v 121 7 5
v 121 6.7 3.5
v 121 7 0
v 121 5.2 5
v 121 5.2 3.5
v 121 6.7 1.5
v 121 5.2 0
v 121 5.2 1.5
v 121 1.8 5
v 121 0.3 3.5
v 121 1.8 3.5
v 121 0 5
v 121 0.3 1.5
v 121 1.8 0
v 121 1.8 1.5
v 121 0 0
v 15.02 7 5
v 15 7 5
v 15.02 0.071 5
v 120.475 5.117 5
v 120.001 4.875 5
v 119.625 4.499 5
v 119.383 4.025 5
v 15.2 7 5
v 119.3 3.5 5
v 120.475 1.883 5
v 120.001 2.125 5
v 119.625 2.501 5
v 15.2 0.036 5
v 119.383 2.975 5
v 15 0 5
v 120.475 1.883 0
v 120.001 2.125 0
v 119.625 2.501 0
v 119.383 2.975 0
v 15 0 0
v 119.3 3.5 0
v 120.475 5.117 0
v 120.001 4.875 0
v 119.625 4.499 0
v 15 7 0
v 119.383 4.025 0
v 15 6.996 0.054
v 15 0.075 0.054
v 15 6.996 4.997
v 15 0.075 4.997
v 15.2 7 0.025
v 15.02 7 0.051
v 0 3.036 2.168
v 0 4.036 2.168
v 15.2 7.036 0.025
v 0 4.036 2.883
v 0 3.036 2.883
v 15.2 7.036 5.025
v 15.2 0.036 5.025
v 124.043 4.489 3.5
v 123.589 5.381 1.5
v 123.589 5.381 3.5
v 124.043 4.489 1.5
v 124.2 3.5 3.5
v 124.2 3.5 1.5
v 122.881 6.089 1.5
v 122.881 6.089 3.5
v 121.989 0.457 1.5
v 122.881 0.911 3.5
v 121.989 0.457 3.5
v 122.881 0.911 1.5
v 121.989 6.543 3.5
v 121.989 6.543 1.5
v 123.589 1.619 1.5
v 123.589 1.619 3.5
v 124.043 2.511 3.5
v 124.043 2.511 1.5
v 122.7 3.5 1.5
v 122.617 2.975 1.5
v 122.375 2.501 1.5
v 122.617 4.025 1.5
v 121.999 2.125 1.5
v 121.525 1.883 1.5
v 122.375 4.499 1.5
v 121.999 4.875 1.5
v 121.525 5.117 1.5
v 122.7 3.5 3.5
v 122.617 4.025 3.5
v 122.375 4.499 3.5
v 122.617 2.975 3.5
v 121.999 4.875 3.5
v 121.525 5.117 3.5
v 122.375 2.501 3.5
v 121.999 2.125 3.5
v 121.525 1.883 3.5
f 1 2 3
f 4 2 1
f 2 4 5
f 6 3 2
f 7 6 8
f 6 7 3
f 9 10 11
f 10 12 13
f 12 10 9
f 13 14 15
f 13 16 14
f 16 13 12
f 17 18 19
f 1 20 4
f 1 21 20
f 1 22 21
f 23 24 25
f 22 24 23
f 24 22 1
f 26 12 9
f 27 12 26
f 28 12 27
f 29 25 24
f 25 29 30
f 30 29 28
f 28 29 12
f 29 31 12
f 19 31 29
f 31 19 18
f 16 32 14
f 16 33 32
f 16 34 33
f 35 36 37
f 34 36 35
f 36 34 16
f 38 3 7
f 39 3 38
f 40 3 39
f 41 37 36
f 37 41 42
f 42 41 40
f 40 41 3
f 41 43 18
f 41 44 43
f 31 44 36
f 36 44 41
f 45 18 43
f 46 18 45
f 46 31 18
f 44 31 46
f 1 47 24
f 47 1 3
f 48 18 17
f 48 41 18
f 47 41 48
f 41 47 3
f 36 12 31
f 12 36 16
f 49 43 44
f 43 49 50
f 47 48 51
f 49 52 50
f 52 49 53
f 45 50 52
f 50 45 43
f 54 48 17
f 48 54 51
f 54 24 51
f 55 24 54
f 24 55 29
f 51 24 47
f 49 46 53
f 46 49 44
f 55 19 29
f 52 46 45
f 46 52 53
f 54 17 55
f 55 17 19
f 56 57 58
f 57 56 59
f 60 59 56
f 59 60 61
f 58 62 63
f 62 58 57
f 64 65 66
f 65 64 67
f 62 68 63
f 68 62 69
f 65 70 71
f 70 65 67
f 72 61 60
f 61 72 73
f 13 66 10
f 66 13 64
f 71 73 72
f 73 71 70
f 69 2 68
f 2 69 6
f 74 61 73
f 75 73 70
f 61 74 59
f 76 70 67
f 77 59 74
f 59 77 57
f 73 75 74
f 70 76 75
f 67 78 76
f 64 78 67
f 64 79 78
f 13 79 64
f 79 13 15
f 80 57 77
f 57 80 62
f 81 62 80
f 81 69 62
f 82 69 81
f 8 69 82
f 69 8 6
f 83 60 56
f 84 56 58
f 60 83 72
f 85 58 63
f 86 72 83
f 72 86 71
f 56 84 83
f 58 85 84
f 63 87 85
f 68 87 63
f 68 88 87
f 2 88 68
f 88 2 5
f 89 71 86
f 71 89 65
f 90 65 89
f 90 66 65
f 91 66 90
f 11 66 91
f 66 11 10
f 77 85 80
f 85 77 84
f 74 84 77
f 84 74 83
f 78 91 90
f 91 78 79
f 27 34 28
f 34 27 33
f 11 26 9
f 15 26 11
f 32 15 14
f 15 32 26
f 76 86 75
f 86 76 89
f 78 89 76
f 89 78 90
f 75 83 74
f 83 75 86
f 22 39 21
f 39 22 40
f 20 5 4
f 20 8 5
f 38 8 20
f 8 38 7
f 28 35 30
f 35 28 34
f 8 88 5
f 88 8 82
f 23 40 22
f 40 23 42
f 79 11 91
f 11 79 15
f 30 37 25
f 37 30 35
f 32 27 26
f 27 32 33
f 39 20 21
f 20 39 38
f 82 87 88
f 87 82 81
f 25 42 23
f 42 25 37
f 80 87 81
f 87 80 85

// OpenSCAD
difference() {
    union() {
        translate([15, 0, 0] ) {
            cube([106,7,5],false);
        }
        resize([15.2, 7, 5]) {
            translate([0, 2.5, 2.5] ) {
                rotate([0, 90, 0]) {
                    rotate([0, 0, 45]) {
                        cylinder(h=15, r1=0.5, r2=3.5, center=false, $fn=4);
                    }
                }
            }
        }

        translate([121, 3.5, 1.5]) {
            cylinder(h=2, r=3.2, $fn=20);
        }
    }
    translate([121, 3.5, -3]) {
        cylinder(h=10, r=1.7, $fn=20);
    }
}
